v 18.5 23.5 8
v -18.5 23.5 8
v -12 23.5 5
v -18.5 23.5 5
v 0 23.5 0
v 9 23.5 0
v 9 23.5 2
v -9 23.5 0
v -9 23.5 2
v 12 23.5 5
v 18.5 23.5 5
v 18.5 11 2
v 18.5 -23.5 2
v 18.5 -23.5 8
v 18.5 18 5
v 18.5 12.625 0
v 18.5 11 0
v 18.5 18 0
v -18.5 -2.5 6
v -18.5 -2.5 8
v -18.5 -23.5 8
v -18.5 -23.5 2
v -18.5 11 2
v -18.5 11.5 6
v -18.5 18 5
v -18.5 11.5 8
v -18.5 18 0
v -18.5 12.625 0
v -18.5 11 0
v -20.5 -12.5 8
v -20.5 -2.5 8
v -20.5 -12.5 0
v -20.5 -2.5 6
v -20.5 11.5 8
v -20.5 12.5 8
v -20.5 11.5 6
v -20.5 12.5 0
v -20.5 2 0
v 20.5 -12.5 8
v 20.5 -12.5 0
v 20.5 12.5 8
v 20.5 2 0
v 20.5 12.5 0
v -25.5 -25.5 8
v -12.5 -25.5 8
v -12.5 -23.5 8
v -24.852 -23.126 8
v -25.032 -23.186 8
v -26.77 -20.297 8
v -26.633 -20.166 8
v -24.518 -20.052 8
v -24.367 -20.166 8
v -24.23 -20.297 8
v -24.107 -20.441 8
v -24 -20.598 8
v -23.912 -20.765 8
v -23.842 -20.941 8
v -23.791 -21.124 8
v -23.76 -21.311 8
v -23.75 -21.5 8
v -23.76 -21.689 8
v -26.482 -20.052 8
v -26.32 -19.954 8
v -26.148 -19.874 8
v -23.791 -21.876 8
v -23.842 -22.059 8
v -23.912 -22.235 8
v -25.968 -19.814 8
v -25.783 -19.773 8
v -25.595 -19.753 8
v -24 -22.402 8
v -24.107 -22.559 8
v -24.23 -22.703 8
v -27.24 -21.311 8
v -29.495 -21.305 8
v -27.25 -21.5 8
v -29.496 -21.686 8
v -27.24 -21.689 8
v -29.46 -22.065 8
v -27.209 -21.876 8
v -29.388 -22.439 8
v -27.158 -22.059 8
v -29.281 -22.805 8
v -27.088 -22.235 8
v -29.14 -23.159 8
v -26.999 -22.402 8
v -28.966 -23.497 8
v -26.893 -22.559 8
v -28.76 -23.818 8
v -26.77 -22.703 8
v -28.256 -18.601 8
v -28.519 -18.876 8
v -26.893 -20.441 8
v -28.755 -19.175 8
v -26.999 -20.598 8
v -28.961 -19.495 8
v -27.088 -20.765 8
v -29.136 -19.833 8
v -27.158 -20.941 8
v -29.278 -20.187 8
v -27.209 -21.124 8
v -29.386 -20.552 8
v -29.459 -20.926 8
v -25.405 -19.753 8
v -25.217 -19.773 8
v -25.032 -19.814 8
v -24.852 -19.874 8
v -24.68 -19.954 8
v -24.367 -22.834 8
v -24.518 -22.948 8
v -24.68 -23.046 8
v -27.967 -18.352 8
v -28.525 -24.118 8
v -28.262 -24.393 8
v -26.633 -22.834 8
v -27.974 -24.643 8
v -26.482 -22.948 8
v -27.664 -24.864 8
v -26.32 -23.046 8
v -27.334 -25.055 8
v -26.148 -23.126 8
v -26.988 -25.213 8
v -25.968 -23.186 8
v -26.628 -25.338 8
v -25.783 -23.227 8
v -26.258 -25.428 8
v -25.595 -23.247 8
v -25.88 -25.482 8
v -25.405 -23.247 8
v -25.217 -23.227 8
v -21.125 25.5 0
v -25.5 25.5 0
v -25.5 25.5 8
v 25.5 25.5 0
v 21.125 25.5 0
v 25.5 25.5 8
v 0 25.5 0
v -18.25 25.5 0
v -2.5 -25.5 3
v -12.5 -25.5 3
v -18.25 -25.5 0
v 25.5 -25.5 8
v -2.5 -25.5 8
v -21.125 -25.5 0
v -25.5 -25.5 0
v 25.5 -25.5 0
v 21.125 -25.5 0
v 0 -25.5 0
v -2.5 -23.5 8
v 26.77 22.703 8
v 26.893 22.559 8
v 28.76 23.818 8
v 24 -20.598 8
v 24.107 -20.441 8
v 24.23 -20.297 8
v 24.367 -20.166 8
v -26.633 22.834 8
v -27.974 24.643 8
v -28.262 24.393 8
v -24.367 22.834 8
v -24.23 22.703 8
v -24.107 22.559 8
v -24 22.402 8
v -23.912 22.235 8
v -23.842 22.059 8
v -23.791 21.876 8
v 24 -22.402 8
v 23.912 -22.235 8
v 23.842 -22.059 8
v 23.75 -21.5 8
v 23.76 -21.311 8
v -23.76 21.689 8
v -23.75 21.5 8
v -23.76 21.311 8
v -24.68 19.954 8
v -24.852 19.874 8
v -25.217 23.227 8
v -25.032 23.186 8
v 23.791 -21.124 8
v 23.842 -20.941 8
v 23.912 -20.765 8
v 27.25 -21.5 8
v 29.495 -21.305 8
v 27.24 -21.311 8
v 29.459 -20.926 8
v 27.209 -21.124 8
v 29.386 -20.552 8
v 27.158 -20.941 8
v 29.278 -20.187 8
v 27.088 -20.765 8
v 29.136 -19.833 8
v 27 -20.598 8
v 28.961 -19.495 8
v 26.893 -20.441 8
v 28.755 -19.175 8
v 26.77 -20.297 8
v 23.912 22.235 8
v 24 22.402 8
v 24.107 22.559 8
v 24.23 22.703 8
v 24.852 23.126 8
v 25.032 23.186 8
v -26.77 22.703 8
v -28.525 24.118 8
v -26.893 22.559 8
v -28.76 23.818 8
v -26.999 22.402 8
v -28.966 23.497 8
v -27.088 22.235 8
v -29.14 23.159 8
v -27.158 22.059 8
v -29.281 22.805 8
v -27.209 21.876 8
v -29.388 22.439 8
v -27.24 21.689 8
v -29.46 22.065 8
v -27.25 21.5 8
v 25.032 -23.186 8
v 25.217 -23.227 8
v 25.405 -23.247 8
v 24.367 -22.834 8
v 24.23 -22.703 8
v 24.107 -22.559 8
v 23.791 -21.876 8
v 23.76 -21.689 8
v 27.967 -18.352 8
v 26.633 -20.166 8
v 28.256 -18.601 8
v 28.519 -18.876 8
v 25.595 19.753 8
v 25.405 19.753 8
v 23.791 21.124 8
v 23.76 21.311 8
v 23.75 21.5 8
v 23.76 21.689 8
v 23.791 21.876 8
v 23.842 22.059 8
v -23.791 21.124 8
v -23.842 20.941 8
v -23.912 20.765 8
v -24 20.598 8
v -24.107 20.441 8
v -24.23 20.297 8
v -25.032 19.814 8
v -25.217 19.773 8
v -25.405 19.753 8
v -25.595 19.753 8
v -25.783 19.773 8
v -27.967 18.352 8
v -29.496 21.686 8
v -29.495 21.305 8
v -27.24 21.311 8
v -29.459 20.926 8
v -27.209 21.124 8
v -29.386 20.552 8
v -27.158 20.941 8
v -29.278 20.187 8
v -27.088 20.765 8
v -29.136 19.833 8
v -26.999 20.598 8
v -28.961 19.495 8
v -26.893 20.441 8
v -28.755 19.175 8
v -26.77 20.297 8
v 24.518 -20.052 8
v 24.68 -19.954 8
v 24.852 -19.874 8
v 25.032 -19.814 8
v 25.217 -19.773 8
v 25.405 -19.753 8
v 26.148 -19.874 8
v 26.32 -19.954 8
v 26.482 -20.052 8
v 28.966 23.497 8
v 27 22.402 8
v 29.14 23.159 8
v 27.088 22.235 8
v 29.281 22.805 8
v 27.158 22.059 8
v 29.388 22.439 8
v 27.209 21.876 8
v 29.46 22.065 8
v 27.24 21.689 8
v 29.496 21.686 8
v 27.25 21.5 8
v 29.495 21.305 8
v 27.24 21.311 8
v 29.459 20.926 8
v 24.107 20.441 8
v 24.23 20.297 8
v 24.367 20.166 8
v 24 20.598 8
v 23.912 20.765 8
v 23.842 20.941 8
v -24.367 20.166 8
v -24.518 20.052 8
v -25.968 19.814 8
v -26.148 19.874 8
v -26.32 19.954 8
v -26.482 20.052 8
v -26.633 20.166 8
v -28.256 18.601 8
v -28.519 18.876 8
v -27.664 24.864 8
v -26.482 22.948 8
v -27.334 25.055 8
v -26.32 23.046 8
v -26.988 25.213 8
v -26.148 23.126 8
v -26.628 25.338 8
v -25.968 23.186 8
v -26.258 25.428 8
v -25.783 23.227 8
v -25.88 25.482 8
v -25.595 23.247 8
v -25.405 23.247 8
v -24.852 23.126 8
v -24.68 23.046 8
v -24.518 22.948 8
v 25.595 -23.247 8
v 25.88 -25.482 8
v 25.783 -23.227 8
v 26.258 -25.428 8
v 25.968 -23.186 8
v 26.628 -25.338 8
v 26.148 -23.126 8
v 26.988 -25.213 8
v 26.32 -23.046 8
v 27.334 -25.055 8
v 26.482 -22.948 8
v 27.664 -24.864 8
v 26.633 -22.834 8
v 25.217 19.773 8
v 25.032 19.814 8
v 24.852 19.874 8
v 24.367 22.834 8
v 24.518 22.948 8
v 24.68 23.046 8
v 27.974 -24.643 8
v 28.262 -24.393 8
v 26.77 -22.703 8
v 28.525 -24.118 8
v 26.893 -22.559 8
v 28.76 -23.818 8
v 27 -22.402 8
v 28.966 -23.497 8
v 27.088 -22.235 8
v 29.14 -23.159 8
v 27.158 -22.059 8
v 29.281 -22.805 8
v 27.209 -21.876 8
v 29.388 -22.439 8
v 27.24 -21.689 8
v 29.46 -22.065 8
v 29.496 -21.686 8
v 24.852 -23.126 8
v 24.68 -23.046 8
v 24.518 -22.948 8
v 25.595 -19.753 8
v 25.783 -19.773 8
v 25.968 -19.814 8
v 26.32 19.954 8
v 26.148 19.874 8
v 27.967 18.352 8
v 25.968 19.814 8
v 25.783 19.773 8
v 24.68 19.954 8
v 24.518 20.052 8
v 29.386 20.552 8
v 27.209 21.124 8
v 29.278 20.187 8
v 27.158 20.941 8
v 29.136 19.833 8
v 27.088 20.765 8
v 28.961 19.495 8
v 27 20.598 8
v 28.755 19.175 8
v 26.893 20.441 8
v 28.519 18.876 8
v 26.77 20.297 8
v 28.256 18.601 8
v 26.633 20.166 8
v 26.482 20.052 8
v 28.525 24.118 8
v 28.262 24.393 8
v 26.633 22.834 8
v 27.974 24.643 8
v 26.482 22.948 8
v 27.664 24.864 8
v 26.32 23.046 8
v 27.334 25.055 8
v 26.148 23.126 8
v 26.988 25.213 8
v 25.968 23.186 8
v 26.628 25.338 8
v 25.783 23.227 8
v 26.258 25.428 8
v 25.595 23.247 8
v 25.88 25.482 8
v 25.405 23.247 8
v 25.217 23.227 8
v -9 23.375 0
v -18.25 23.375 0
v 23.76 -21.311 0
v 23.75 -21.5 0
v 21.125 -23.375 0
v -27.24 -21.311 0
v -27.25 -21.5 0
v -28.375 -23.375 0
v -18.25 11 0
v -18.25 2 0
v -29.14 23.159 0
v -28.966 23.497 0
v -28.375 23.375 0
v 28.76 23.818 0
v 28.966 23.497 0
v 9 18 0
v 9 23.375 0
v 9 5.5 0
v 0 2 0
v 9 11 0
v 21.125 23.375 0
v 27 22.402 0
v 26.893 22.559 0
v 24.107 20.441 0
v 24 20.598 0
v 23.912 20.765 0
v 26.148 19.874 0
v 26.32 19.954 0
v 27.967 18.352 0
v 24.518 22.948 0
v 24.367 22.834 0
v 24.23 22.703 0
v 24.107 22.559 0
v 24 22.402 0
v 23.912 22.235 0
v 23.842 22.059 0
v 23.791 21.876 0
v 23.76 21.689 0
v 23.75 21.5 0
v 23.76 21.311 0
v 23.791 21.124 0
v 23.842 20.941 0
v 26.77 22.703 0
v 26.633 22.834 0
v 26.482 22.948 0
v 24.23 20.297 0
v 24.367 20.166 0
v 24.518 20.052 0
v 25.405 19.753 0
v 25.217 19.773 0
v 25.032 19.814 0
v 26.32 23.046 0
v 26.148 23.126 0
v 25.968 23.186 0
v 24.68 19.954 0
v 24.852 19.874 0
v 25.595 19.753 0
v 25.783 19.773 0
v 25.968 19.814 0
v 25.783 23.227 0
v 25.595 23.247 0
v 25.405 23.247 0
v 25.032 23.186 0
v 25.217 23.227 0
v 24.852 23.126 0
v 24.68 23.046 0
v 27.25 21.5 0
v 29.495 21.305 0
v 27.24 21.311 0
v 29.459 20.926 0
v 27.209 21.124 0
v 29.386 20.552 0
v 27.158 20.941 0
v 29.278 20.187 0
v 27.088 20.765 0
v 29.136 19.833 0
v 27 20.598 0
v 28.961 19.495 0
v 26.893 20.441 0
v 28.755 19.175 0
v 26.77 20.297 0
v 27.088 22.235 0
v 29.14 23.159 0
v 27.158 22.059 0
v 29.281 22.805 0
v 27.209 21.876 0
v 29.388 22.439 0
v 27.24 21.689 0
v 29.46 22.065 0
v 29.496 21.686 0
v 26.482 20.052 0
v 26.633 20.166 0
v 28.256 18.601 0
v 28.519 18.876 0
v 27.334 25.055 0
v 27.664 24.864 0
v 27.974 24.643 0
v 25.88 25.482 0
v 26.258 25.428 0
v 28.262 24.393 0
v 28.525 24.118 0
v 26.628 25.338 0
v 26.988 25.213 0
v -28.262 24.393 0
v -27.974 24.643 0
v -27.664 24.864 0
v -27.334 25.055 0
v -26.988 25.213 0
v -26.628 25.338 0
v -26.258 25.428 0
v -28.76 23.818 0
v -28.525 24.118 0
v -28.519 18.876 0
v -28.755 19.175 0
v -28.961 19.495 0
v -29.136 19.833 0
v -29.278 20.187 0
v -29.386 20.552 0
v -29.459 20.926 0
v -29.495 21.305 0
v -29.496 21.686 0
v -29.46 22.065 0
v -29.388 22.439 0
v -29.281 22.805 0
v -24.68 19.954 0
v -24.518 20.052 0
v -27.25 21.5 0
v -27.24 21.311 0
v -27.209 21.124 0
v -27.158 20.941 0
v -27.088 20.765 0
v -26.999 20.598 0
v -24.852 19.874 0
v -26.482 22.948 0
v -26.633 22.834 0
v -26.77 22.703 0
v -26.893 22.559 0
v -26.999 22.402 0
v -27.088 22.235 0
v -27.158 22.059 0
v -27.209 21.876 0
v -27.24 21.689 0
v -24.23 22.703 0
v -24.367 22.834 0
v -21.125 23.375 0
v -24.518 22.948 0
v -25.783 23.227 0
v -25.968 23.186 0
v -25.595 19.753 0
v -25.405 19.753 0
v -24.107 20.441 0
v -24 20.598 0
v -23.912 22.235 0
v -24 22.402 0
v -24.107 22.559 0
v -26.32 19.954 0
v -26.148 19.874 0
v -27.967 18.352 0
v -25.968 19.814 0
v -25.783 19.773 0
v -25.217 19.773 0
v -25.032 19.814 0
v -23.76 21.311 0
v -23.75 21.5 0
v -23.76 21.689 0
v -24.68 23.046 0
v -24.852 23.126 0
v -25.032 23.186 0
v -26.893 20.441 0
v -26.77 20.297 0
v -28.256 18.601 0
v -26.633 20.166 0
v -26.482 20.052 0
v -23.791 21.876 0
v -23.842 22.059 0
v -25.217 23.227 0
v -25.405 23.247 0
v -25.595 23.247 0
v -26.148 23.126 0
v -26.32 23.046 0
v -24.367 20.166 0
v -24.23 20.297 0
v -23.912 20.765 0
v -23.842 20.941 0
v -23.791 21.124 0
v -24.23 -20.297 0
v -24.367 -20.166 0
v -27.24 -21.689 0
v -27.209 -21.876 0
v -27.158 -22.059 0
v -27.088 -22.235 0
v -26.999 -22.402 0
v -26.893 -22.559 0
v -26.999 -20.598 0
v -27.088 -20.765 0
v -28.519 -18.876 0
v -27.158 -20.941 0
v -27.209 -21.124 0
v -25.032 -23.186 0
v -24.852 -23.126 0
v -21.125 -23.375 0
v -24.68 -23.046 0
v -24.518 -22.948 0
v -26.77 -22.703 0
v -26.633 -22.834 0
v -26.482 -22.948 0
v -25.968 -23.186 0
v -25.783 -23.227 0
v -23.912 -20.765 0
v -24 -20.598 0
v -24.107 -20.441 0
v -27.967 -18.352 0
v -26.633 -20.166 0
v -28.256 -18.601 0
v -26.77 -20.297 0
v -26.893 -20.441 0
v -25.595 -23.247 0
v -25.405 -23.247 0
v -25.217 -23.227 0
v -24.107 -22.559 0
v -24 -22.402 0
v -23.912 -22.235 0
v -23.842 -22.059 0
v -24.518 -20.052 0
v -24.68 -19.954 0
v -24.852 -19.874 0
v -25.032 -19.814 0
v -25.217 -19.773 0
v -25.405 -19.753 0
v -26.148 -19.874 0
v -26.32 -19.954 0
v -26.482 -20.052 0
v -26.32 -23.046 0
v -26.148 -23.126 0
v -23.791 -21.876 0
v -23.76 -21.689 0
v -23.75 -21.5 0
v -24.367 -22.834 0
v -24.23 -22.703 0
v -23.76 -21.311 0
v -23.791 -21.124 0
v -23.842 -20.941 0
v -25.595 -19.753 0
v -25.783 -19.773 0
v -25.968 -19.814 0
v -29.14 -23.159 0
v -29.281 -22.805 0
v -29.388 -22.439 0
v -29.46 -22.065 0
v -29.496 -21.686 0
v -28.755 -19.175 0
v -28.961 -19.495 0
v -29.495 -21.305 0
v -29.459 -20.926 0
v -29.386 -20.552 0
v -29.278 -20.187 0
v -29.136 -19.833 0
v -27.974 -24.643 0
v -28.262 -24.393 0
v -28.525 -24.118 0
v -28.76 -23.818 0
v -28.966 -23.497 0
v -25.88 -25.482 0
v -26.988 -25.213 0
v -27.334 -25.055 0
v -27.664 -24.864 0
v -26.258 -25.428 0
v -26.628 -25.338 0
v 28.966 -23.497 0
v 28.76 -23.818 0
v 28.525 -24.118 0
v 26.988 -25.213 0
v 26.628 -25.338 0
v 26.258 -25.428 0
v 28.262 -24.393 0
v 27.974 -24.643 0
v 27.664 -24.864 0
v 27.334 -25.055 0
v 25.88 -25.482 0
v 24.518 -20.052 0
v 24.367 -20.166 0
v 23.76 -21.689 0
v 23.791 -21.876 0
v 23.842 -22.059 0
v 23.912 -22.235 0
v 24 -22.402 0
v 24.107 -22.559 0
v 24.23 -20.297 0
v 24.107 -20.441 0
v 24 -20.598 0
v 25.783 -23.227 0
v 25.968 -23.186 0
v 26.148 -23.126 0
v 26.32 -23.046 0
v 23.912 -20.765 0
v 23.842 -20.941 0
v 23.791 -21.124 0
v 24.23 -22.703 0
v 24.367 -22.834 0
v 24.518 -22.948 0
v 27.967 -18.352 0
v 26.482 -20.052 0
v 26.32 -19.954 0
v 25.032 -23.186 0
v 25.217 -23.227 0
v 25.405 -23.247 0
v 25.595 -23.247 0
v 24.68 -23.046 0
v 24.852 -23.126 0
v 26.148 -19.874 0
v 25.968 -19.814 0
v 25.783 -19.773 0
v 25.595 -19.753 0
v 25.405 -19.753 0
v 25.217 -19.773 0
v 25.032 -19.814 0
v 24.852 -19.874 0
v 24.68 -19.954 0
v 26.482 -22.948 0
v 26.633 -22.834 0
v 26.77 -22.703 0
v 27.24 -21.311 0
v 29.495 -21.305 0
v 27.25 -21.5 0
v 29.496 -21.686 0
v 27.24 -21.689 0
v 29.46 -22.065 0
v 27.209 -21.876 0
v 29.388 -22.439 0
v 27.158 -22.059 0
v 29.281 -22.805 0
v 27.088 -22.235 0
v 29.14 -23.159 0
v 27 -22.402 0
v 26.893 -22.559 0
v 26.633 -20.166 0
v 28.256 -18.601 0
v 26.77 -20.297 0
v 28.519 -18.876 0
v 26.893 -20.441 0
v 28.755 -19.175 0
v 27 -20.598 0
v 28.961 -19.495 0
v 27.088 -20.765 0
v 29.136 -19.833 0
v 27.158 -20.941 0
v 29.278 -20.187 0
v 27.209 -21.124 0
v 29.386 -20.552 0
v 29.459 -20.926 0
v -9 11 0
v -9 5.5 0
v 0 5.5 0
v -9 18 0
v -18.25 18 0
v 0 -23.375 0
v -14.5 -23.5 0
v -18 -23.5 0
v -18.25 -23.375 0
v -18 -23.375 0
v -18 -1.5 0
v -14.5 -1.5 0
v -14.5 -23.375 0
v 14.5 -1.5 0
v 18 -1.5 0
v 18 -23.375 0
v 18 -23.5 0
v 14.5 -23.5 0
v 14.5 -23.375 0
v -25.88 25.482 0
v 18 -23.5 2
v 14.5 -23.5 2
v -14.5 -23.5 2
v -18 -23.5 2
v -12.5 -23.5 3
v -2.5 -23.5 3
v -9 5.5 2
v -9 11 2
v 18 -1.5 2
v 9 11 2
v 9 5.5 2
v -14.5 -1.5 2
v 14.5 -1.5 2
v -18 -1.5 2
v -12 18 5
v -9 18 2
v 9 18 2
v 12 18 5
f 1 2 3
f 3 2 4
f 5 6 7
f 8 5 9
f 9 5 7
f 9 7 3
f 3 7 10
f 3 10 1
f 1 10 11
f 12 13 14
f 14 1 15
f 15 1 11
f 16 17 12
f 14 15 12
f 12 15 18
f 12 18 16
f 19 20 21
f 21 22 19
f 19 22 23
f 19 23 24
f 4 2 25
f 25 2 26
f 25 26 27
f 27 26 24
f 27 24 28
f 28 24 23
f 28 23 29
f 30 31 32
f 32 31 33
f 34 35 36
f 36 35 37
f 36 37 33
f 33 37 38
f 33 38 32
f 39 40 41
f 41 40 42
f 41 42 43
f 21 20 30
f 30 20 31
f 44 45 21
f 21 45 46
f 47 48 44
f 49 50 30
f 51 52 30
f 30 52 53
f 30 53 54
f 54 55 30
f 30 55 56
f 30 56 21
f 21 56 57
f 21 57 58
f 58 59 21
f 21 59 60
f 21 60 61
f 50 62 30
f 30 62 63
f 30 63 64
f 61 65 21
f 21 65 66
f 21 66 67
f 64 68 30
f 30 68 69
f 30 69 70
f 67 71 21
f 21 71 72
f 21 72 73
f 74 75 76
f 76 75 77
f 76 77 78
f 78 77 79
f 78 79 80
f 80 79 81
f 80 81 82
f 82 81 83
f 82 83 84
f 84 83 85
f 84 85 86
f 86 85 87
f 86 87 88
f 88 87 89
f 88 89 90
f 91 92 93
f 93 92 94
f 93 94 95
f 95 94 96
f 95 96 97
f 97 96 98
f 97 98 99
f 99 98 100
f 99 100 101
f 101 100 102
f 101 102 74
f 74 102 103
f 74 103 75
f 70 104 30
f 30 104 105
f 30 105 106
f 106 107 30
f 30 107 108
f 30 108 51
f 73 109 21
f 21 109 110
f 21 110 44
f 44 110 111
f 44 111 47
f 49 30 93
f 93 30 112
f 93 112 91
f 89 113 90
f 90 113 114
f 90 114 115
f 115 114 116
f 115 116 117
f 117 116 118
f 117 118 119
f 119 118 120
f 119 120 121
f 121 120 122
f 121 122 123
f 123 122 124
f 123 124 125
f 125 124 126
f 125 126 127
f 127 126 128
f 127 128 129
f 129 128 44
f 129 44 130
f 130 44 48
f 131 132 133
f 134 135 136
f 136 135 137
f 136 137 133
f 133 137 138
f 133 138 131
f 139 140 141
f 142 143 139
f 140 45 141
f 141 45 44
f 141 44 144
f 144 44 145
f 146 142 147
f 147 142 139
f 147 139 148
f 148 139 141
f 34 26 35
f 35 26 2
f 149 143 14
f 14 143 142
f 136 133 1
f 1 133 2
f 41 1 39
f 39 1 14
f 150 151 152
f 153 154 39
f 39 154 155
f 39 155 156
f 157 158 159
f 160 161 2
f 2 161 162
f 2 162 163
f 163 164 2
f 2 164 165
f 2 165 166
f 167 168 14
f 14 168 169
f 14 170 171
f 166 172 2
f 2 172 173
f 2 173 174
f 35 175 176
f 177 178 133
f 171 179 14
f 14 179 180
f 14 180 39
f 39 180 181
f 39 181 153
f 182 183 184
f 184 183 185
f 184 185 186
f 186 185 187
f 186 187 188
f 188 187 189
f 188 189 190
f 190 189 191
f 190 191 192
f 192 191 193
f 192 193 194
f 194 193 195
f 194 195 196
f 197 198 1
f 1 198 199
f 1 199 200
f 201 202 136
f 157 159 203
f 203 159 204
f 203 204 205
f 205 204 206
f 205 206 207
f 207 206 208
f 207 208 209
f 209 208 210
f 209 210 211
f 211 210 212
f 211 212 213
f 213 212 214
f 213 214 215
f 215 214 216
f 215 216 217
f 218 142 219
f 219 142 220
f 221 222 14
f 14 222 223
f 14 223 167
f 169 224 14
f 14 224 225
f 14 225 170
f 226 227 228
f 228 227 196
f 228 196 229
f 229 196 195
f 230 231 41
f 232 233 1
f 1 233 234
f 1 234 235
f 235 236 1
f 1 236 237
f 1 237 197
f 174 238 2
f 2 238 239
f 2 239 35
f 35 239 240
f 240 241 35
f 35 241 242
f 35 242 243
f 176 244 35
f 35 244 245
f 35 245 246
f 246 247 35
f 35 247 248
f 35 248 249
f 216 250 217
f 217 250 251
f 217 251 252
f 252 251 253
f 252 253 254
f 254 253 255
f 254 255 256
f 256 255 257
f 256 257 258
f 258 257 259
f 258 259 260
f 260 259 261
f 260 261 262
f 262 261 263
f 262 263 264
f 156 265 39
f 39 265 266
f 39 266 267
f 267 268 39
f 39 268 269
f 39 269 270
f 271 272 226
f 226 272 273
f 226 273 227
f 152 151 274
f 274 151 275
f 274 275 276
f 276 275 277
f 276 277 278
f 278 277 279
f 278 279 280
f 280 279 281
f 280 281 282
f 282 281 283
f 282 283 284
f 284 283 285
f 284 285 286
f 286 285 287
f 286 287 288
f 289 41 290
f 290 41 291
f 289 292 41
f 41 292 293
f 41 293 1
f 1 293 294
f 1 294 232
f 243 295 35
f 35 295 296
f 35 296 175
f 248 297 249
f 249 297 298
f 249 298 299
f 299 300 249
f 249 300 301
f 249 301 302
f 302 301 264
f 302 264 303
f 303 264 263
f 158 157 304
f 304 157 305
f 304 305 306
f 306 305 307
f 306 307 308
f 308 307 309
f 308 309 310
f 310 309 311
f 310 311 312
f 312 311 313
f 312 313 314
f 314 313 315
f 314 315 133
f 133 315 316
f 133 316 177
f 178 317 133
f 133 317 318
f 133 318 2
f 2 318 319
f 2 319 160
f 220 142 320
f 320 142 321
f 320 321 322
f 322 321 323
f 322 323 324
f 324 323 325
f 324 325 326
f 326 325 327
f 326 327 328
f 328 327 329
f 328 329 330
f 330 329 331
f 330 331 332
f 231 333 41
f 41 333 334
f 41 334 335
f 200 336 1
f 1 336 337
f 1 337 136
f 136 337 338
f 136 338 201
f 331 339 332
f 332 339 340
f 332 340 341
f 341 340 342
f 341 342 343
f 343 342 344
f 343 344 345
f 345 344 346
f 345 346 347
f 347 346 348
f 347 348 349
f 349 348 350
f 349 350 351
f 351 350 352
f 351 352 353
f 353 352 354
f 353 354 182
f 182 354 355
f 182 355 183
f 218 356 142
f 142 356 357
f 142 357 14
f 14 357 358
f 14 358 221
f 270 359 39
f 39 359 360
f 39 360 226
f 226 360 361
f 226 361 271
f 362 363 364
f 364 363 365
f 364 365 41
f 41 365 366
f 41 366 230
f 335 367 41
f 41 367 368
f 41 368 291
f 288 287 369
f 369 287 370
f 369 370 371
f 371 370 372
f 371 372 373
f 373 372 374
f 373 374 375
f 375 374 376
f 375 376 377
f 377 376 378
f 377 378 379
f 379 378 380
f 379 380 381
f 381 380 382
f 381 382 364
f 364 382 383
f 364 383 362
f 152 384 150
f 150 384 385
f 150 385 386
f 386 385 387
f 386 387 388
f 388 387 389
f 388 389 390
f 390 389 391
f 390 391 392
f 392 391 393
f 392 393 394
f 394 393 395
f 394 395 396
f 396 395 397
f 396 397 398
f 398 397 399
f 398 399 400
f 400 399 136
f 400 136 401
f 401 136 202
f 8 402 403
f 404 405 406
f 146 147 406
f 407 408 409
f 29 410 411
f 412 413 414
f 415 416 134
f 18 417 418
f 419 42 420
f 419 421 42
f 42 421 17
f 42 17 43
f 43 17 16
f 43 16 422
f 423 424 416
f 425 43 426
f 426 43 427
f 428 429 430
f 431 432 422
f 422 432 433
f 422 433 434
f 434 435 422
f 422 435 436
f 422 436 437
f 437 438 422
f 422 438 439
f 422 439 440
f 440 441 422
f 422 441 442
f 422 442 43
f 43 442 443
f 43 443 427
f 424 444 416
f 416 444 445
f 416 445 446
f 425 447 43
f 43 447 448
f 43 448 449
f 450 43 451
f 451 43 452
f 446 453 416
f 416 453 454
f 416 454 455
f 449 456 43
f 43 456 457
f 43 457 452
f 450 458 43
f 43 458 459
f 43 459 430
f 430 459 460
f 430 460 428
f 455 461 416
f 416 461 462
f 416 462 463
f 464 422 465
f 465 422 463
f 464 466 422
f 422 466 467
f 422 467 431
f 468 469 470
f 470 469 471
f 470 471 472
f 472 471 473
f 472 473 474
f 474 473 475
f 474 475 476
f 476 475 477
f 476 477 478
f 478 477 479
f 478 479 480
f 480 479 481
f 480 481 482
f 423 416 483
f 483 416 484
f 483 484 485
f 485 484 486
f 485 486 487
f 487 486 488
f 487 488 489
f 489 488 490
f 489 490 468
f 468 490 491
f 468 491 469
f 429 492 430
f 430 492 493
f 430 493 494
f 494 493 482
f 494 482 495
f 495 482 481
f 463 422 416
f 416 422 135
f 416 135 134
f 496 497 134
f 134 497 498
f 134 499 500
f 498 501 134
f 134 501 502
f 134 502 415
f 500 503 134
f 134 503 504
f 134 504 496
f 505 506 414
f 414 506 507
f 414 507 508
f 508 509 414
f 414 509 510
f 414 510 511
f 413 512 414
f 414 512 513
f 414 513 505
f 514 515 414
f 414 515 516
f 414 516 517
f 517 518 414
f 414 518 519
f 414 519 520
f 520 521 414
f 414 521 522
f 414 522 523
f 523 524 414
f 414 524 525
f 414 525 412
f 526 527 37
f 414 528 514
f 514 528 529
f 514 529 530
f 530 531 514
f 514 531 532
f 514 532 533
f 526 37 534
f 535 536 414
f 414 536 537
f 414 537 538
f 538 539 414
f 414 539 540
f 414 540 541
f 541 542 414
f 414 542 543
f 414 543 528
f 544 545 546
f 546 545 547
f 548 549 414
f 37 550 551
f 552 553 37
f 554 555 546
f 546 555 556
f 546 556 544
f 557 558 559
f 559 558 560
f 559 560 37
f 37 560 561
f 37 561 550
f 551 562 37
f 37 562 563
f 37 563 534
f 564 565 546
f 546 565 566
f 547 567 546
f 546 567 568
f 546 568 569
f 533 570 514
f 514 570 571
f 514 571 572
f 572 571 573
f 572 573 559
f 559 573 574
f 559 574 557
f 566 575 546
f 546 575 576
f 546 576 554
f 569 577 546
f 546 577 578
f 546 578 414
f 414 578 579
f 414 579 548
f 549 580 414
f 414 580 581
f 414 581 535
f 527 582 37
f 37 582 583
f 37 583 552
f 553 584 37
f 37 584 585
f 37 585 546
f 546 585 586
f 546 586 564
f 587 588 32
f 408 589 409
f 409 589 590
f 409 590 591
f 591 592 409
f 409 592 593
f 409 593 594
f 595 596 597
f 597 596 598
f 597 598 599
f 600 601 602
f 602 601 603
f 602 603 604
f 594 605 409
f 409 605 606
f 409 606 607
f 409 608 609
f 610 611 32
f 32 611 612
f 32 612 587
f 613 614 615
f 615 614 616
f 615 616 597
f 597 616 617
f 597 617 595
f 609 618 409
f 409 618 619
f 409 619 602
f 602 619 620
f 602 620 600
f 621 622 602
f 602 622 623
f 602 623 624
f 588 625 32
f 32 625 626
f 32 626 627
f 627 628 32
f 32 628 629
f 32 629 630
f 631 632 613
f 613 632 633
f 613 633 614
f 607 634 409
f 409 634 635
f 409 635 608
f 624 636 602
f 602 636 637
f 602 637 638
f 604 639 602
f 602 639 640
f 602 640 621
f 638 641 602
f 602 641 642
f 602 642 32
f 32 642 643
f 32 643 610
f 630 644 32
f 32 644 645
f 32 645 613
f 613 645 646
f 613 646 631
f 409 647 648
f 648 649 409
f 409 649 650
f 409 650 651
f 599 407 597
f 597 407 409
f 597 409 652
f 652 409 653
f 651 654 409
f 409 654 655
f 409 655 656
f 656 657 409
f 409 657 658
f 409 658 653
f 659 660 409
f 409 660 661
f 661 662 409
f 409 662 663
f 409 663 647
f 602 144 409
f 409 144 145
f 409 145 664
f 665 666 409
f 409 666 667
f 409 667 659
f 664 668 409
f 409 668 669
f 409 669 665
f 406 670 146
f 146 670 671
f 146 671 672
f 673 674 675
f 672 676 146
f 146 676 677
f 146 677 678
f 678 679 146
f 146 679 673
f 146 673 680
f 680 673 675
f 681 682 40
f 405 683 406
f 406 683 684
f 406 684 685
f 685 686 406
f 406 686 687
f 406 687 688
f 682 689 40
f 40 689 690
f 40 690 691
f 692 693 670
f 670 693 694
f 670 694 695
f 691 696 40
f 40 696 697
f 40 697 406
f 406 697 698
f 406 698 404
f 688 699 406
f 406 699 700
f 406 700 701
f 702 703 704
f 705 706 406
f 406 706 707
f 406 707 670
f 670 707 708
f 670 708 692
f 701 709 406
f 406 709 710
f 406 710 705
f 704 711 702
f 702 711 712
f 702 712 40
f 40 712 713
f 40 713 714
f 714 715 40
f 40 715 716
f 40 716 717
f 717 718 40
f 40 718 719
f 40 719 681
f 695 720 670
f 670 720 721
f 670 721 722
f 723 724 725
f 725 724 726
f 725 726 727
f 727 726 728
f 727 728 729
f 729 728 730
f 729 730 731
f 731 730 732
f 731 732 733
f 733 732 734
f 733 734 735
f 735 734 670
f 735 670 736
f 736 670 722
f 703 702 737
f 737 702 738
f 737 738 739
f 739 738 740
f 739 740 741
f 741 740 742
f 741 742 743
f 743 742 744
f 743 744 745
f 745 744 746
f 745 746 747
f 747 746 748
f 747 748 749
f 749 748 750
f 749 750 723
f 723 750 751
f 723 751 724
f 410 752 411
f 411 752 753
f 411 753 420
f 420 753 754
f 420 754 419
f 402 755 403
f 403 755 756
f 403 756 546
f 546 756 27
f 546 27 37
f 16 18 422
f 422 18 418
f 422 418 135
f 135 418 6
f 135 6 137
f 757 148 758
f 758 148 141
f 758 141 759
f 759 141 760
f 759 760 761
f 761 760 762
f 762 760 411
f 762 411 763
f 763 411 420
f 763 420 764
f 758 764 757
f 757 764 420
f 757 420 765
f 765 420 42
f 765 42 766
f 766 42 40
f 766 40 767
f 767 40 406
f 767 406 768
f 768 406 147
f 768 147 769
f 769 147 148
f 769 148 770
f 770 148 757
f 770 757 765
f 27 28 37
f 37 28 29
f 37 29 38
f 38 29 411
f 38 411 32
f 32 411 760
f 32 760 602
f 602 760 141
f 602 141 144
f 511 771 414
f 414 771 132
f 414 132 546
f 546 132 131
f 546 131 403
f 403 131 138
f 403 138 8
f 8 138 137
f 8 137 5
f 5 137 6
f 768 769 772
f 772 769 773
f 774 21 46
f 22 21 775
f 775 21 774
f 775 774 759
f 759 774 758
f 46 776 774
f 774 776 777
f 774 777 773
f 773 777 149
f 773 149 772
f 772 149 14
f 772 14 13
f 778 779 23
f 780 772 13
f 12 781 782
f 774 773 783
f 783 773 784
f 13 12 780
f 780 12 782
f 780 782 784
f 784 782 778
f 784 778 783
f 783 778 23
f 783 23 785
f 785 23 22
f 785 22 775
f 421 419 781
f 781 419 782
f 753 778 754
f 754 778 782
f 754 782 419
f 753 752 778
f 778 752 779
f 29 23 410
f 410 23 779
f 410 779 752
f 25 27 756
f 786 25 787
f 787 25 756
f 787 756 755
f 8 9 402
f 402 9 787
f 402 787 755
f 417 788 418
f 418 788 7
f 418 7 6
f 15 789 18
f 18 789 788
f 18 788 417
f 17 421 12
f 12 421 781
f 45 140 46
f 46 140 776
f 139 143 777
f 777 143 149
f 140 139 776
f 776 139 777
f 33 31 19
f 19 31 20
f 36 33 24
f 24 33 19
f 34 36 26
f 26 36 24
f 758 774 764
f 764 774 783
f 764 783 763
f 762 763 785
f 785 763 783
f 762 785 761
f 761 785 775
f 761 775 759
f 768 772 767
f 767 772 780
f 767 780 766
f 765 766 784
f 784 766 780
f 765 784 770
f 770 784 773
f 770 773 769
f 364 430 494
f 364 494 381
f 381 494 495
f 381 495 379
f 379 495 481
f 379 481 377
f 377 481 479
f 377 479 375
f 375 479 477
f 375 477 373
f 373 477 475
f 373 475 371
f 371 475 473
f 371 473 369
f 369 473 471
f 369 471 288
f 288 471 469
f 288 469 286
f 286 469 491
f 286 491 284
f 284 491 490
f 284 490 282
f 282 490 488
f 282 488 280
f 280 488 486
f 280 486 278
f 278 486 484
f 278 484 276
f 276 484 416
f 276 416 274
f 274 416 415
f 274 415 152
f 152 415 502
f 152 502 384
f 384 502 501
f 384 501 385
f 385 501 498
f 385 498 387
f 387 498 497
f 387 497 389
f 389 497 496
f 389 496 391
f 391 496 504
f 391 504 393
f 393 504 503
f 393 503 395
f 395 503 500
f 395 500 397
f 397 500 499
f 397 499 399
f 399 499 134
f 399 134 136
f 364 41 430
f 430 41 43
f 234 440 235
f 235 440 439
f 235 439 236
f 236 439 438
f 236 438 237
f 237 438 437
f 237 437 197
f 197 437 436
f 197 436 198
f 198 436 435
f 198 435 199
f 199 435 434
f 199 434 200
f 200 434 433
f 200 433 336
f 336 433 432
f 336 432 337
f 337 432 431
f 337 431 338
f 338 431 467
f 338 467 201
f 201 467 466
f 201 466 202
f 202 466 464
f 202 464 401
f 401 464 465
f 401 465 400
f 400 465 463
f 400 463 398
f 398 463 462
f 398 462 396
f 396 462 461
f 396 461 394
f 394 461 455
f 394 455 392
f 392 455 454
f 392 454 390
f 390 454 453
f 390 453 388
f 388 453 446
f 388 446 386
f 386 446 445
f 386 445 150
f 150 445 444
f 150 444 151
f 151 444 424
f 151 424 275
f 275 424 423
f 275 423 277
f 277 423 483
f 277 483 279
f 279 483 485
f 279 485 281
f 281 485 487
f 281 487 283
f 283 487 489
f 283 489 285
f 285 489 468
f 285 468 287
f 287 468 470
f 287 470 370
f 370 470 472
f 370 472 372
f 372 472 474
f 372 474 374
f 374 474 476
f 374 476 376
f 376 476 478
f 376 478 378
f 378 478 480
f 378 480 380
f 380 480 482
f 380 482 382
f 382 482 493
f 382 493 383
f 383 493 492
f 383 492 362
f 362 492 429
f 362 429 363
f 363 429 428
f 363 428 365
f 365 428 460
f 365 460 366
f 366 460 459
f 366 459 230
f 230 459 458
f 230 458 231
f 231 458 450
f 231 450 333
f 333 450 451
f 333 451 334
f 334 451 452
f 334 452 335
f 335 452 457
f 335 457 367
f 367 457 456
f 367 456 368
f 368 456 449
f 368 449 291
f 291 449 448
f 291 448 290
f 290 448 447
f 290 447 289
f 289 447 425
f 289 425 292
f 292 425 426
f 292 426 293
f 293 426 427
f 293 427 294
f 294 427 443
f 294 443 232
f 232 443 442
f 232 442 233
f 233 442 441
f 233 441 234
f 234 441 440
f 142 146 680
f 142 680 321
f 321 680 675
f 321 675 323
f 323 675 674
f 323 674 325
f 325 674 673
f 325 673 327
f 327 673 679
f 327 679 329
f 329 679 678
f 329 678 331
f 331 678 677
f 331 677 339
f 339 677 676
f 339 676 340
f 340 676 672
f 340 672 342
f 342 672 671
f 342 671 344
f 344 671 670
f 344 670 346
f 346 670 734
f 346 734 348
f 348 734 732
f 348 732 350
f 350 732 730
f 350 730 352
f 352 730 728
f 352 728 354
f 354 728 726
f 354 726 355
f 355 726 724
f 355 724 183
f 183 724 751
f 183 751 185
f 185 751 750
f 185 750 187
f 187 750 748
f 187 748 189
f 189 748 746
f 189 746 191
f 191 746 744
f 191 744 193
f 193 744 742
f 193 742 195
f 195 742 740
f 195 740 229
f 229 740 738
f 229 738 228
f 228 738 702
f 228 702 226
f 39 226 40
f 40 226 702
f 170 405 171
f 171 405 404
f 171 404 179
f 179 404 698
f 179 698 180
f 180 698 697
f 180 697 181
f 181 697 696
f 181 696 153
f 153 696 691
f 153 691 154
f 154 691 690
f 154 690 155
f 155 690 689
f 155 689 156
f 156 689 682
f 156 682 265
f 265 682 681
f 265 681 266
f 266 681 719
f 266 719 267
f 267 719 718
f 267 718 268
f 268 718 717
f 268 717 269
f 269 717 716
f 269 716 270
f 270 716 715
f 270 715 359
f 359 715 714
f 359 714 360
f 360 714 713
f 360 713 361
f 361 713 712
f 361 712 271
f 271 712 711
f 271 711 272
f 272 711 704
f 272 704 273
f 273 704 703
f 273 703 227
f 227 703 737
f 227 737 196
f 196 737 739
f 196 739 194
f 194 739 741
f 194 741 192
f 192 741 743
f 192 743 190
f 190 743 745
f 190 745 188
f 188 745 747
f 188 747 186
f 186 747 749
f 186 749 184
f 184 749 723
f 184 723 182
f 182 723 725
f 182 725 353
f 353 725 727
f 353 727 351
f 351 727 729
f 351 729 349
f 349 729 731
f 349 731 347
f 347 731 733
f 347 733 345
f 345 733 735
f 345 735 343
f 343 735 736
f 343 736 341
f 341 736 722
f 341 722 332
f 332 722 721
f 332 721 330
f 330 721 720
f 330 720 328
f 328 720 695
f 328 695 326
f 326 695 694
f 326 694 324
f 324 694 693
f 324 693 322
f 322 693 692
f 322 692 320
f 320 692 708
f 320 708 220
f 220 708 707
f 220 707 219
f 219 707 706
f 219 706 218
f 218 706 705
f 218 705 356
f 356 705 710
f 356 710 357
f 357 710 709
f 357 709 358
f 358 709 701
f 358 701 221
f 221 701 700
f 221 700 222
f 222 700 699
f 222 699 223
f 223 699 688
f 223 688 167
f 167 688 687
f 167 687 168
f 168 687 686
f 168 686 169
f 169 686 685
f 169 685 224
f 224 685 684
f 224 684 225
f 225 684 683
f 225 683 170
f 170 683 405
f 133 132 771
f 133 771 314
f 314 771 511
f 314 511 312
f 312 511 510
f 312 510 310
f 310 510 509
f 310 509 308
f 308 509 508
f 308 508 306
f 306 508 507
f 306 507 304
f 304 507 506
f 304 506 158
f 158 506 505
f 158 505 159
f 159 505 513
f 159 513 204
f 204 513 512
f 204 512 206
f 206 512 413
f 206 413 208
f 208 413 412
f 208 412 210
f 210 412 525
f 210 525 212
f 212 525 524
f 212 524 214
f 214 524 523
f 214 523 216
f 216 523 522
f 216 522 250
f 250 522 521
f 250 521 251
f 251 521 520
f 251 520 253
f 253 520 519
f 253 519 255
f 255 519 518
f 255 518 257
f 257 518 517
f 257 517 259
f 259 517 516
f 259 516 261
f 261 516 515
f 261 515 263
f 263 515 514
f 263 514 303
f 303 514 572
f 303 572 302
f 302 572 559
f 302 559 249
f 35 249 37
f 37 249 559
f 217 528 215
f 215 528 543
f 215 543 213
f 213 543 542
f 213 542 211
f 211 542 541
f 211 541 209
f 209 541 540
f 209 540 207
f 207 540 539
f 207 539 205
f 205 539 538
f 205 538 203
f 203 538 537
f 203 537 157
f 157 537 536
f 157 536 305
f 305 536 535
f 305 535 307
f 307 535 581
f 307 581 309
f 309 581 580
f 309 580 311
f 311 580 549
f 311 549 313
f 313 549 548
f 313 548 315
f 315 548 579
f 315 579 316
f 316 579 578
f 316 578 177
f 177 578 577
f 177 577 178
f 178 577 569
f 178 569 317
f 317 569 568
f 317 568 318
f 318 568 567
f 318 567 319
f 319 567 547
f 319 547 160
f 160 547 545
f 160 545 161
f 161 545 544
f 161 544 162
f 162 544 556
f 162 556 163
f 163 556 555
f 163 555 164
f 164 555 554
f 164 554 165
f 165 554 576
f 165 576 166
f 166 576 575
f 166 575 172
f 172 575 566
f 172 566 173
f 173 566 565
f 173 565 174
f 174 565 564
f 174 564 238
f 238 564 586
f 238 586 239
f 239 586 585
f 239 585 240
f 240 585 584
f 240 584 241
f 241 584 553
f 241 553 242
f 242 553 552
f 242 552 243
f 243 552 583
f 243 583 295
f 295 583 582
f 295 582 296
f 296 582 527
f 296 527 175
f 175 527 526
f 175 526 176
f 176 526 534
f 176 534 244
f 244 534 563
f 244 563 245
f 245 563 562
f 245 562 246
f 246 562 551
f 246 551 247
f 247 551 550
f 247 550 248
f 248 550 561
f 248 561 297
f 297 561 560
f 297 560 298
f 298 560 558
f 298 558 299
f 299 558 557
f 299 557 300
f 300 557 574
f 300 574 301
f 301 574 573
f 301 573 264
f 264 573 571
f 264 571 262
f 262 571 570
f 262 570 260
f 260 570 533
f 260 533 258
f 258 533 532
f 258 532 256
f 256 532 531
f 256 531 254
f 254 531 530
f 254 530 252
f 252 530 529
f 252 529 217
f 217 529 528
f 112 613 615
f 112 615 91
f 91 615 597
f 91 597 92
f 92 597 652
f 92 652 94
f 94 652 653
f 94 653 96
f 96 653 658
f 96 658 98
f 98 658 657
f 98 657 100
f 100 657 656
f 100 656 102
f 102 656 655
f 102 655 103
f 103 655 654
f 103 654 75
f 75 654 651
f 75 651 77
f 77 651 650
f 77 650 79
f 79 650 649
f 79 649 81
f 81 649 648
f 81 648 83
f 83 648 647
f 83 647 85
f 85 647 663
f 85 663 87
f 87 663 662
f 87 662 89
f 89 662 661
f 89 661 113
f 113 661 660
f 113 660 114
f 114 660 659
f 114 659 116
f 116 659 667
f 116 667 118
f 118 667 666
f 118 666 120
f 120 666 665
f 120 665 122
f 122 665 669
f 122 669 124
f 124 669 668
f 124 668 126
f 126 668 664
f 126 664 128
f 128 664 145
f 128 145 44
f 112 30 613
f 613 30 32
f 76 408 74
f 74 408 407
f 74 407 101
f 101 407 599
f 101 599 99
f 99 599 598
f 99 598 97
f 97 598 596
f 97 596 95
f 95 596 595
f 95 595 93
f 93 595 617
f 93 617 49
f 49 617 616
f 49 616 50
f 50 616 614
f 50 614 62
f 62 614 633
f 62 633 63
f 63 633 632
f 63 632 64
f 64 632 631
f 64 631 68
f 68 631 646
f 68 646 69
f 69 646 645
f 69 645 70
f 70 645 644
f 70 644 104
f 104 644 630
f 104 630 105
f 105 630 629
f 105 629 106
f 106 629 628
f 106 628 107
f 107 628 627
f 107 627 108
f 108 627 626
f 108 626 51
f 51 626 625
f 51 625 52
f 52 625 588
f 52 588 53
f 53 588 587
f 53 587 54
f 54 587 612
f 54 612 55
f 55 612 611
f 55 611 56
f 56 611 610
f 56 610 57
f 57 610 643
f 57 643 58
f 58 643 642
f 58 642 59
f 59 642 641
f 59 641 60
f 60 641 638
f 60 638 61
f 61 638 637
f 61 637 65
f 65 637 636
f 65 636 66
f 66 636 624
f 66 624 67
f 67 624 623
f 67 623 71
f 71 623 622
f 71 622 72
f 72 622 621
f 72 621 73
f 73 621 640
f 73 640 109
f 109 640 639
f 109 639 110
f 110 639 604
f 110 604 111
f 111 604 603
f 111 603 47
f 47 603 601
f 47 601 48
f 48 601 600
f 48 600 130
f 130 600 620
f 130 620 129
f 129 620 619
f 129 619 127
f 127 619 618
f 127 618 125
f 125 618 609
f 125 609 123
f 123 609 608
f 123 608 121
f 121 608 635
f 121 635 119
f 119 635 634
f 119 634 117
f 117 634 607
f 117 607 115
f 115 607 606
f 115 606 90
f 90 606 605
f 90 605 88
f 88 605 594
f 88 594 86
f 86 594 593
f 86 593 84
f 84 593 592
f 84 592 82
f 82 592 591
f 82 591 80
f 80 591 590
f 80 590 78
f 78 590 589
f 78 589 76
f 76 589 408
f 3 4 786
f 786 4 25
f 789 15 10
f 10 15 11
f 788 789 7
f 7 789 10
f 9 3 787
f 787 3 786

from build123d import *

# Parameters (mm, degrees)
SKETCH1_W                                  = 41
SKETCH1_H                                  = 51
BOSS_EXTRUDE1_DEPTH                        = 8
SHELL1_T                                   = -2
CUT_EXTRUDE1_DEPTH                         = 34.264094757
SKETCH3_W                                  = 10
SKETCH3_H                                  = 5
CUT_EXTRUDE2_DEPTH                         = 7
SKETCH4_W                                  = 2
SKETCH4_H                                  = 14
CUT_EXTRUDE3_DEPTH                         = 7
SKETCH5_W                                  = 3.5
SKETCH5_H                                  = 22
CUT_EXTRUDE4_DEPTH                         = 7
SKETCH6_R                                  = 1.75
BOSS_EXTRUDE2_DEPTH                        = 8
MIRROR1_AT_THE_SECOND_PLANE_COPY_1_SKETC_R = 1.75
MIRROR1_AT_THE_SECOND_PLANE_COPY_1_DEPTH   = 8
SKETCH7_W                                  = 9.5
SKETCH7_H                                  = 5.5
BOSS_EXTRUDE3_DEPTH                        = 3
CHAMFER1_SIZE                              = 3


with BuildPart() as part:
    # Sketch1 → Boss-Extrude1 (new body)
    with BuildSketch(Plane.XY):
        Rectangle(SKETCH1_W, SKETCH1_H)
    extrude(amount=BOSS_EXTRUDE1_DEPTH)

    # Shell1
    shell1_openings = [part.faces().sort_by_distance(p)[0] for p in [
        (0, 0, 8),
    ]]
    offset(amount=SHELL1_T, openings=shell1_openings, kind=Kind.INTERSECTION)

    # Sketch2 → Cut-Extrude1 (cut, through all)
    with BuildSketch(Plane.XY.offset(2)):
        Polygon((-9, 23.5), (9, 23.5), (9, 18), (18.5, 18), (18.5, 11), (9, 11), (9, 5.5), (-9, 5.5), (-9, 11), (-18.5, 11), (-18.5, 18), (-9, 18), align=None)
    extrude(amount=-CUT_EXTRUDE1_DEPTH, mode=Mode.SUBTRACT)

    # Sketch3 → Cut-Extrude2 (cut)
    with BuildSketch(Plane.XZ.offset(25.5)):
        with Locations((-7.5, 5.5)):
            Rectangle(SKETCH3_W, SKETCH3_H)
    extrude(amount=-CUT_EXTRUDE2_DEPTH, mode=Mode.SUBTRACT)

    # Sketch4 → Cut-Extrude3 (cut)
    with BuildSketch(Plane.ZY.offset(20.5)):
        with Locations((7, 4.5)):
            Rectangle(SKETCH4_W, SKETCH4_H)
    extrude(amount=-CUT_EXTRUDE3_DEPTH, mode=Mode.SUBTRACT)

    # Sketch5 → Cut-Extrude4 (cut)
    with BuildSketch(Plane(origin=(0, 0, 0), x_dir=(-1, 0, 0), z_dir=(0, 0, -1))):
        with Locations((-16.25, -12.5)):
            Rectangle(SKETCH5_W, SKETCH5_H)
        with Locations((16.25, -12.5)):
            Rectangle(SKETCH5_W, SKETCH5_H)
    extrude(amount=-CUT_EXTRUDE4_DEPTH, mode=Mode.SUBTRACT)

    # Sketch6 → Boss-Extrude2 (add)
    with BuildSketch(Plane.XY):
        with BuildLine():
            Line((25.5, 25.5), (20.5, 25.5))
            Line((20.5, 25.5), (20.5, 12.5))
            Line((20.5, 12.5), (27.967226295, 18.351540947))
            ThreePointArc((27.967226295, 18.351540947), (29.281126566, 22.805021798), (25.5, 25.5))
        make_face()
        with Locations((25.5, 21.5)):
            Circle(SKETCH6_R, mode=Mode.SUBTRACT)
    boss_extrude2 = extrude(amount=BOSS_EXTRUDE2_DEPTH)

    # Mirror1: Boss-Extrude2 across plane
    add(boss_extrude2.mirror(Plane(origin=(0, 0, 0), x_dir=(0, 0, 1), z_dir=(1, 0, 0))))

    # Mirror1 at the second plane: Boss-Extrude2 across plane
    add(boss_extrude2.mirror(Plane.ZX))

    # Mirror1 at the second plane copy 1 sketc → Mirror1 at the second plane copy 1 (add)
    with BuildSketch(Plane(origin=(0, 0, 0), x_dir=(-1, 0, 0), z_dir=(0, 0, 1))):
        with BuildLine():
            Line((25.5, 25.5), (20.5, 25.5))
            Line((20.5, 25.5), (20.5, 12.5))
            Line((20.5, 12.5), (27.967226295, 18.351540947))
            ThreePointArc((27.967226295, 18.351540947), (29.281126566, 22.805021798), (25.5, 25.5))
        make_face()
        with Locations((25.5, 21.5)):
            Circle(MIRROR1_AT_THE_SECOND_PLANE_COPY_1_SKETC_R, mode=Mode.SUBTRACT)
    extrude(amount=MIRROR1_AT_THE_SECOND_PLANE_COPY_1_DEPTH)

    # Sketch7 → Boss-Extrude3 (add)
    with BuildSketch(Plane.XY.offset(2)):
        with Locations((-13.75, 20.75)):
            Rectangle(SKETCH7_W, SKETCH7_H)
        with Locations((13.75, 20.75)):
            Rectangle(SKETCH7_W, SKETCH7_H)
    extrude(amount=BOSS_EXTRUDE3_DEPTH)

    # Chamfer1
    chamfer1_edges = [part.edges().sort_by_distance(p)[0] for p in [
        (-9, 20.75, 5),
        (9, 20.75, 5),
    ]]
    chamfer(chamfer1_edges, length=CHAMFER1_SIZE)


solid = part.part
